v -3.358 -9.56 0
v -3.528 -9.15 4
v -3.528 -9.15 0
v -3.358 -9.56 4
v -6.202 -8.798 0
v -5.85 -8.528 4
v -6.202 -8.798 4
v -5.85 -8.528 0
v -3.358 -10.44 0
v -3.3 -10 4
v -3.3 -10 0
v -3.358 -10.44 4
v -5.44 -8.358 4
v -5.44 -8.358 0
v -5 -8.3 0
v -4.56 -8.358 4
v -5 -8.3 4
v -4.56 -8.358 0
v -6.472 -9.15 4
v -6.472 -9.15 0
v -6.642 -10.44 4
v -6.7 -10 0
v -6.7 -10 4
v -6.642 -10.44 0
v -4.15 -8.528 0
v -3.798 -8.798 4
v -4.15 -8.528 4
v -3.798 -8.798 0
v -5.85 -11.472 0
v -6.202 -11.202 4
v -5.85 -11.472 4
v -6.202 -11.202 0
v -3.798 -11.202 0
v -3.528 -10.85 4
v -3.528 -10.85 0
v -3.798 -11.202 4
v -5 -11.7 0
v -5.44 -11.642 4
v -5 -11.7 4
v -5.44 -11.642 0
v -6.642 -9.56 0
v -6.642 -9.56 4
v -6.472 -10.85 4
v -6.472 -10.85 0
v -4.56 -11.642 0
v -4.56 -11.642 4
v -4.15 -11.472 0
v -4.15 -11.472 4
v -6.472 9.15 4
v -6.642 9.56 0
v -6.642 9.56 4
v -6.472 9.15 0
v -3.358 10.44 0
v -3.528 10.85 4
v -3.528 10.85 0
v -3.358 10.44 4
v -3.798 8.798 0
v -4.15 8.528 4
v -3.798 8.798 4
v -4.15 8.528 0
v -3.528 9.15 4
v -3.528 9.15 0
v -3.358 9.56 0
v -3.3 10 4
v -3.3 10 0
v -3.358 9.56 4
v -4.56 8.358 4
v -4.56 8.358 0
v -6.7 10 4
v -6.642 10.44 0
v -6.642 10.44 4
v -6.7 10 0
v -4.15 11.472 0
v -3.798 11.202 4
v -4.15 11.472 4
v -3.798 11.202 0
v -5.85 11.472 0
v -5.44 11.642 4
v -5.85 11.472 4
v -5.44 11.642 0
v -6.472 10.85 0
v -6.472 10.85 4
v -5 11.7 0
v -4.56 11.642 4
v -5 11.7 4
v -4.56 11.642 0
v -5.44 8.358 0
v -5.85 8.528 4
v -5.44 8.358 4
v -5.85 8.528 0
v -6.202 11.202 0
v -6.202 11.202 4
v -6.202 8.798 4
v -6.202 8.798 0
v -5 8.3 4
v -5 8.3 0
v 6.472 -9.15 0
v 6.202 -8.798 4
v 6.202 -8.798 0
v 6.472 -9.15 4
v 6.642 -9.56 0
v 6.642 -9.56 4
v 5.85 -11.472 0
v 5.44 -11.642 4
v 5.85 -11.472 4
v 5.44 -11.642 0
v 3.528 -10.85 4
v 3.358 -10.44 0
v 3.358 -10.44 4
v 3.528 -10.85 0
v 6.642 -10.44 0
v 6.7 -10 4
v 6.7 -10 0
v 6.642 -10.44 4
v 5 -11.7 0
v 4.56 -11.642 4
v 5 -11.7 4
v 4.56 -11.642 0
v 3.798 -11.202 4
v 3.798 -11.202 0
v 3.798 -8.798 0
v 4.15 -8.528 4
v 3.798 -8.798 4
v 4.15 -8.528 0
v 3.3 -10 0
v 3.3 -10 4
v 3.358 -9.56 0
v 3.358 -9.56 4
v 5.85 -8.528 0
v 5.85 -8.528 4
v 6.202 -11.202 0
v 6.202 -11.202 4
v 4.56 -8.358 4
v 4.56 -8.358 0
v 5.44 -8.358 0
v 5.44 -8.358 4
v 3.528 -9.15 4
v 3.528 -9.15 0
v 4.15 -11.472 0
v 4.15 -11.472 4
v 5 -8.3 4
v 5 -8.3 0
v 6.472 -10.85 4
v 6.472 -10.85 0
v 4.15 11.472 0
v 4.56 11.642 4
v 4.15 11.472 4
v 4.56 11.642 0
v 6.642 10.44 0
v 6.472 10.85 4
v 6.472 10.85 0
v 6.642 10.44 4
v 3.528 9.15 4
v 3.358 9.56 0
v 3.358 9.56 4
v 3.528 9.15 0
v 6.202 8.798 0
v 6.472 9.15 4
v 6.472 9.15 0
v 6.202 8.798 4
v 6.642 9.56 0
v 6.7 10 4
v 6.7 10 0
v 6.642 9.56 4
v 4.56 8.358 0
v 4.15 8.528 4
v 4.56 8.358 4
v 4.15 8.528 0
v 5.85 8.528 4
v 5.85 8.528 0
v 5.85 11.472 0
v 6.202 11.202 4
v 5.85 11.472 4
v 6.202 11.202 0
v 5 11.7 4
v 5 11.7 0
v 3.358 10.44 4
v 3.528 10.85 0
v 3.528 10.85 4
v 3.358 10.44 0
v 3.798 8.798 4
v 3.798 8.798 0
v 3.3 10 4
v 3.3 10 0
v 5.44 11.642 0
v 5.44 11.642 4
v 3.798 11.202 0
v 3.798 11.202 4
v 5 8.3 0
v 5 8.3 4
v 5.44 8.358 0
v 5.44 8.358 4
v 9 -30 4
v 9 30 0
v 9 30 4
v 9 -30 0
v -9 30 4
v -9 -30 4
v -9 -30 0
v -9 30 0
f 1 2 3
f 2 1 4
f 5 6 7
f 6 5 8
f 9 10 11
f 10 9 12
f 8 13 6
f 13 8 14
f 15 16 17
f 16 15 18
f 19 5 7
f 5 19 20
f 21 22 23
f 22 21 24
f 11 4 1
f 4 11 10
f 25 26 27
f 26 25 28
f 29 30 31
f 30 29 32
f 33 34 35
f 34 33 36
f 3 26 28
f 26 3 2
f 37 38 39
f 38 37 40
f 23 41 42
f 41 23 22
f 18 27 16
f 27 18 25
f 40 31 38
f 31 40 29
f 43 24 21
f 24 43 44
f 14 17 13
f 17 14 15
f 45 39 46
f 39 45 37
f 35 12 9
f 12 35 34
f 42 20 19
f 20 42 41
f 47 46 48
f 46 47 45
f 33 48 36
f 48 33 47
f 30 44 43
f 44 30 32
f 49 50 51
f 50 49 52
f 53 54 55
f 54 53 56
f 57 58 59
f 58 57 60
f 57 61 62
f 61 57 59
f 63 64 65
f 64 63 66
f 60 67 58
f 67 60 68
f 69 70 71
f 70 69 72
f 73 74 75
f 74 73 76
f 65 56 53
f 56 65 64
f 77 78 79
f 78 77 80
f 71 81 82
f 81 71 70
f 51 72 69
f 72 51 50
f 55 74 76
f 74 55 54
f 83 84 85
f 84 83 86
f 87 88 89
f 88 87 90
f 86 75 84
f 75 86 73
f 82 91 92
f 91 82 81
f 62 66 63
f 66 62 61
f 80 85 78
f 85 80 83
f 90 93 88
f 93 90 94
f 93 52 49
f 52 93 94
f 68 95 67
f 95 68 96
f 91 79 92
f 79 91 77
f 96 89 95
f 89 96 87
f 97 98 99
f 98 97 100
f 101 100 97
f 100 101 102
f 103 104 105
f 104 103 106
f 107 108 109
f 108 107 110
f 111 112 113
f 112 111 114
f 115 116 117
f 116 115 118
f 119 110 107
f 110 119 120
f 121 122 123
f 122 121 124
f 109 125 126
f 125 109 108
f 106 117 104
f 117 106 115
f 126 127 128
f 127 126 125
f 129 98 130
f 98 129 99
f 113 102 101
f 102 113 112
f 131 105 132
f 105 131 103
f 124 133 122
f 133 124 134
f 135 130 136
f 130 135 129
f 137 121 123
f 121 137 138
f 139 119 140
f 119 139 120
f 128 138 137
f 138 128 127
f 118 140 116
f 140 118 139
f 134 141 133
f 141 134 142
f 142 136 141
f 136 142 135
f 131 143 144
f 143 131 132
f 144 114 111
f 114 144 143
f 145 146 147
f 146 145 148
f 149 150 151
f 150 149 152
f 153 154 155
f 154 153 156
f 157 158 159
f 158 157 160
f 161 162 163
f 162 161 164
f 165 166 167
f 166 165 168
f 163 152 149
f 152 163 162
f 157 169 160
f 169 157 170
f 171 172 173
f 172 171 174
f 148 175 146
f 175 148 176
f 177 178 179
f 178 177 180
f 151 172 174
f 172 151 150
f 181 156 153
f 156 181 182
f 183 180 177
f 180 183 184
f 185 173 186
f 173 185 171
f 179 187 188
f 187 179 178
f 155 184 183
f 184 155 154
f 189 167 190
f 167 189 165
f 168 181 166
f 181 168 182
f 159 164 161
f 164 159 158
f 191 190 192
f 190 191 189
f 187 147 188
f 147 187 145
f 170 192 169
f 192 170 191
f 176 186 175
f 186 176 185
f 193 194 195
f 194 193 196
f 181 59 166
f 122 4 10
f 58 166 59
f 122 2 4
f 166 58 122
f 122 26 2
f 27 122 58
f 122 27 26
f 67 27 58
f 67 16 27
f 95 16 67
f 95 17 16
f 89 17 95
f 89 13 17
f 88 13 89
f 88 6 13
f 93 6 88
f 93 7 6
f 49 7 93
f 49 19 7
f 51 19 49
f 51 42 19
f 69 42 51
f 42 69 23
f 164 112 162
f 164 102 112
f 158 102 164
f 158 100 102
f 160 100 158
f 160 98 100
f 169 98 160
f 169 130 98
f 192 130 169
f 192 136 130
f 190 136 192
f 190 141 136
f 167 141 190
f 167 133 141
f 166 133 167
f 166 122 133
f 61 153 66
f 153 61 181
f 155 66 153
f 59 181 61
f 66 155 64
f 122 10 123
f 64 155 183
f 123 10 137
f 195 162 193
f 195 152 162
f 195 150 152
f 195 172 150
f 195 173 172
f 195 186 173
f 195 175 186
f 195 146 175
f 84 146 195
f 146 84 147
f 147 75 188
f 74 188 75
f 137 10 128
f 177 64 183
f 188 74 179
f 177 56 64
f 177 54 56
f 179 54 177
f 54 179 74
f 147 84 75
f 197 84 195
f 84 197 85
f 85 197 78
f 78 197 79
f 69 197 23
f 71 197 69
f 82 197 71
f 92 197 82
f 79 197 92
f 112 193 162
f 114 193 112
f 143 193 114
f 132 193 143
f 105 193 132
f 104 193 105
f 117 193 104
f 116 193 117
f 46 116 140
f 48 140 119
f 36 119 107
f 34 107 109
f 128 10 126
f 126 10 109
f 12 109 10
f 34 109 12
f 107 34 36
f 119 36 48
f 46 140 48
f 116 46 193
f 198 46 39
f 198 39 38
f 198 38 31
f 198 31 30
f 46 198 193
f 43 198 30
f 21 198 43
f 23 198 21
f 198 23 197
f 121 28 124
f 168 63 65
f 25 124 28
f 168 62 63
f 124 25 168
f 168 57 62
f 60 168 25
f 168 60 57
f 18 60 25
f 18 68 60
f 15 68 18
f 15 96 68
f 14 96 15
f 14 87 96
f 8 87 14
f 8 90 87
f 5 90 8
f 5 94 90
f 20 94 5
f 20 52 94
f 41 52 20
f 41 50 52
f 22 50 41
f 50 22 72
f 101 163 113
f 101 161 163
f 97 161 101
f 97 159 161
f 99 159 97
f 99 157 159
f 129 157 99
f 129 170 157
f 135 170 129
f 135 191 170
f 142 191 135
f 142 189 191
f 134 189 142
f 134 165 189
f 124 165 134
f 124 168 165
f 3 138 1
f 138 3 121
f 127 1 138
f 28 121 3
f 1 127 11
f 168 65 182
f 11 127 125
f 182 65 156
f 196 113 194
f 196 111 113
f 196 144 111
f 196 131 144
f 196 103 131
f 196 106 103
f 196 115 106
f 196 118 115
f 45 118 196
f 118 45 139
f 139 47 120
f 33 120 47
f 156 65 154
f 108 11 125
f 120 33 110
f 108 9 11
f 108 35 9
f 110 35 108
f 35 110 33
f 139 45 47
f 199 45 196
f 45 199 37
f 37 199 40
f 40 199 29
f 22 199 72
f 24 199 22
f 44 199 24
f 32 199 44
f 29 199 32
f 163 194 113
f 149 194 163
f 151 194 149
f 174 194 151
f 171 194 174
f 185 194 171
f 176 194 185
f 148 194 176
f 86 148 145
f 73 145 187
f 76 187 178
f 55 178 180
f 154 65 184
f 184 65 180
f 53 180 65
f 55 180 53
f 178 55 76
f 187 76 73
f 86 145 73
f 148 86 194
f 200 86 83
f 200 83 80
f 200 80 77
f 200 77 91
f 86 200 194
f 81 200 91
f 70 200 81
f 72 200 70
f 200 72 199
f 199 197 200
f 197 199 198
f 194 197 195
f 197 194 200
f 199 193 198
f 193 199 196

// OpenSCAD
// file: ../print/common.scad
// ============================================================================
// common.scad - shared parameters and helpers for EEELunarRover printed parts
// ----------------------------------------------------------------------------
// Units: millimetres. Every dimension below is taken either from the EEEBug
// V3.1 laser-cut CAD (mech/chassis.svg, measured) or from a verified component
// datasheet (see mech/rover_layout.md section "Verified part dimensions").
//
// Printer envelope: 200 x 200 x 200 mm PLA. We deliberately keep every part
// under 180 mm in its longest axis (lab guidance: do not use the full bed).
// ============================================================================

$fn = 60;
eps = 0.05;

// ---------- Fasteners (verified: M3 nylon hex A/F measured 5.4-5.6 mm) -------
M3_CLEAR  = 3.4;   // clearance for an M3 screw / standoff thread
M3_TAP    = 2.9;   // pilot for self-tapping an M3 into PLA
M3_HEAD   = 6.2;   // M3 pan-head clearance diameter
M3_HEXAF  = 5.8;   // nylon M3 hex standoff/nut across-flats + fit clearance
WALL      = 2.0;   // default wall (5 perimeters @ 0.4 mm nozzle)

// ---------- Chassis: EEEBug V3.1 (from mech/chassis.svg) ---------------------
CH_W   = 95.0;     // chassis width  (X)
CH_L   = 205.0;    // chassis length (Y)
CH_T   = 3.0;      // 3 mm acrylic
AXLE_Y = 105.0;    // drive-wheel centreline (waist pinches 95->85 mm, y 96-114)

// Central M3 anchor rectangle straddling the axle (chassis coords, Ø3.1 holes):
//   (10.5, 95) (84.5, 95) (10.5, 129) (84.5, 129)  ->  74 mm (X) x 34 mm (Y)
ANCHOR_PITCH_X = 74.0;
ANCHOR_PITCH_Y = 34.0;

// Standard modular interface: every small sensor mount bolts on with
// 2x M3 at this pitch.
DOCK_PITCH = 12.0;

// ---------- Verified component dimensions ------------------------------------
// OSRAM SFH 300 phototransistor: 5 mm T-1 3/4 radial, body Ø5.1, ~8.6 tall,
//   leads 2.54 mm pitch.
SFH300_DIA = 5.1;
// Murata MA40S4R 40 kHz ultrasonic Rx: body Ø9.9, 7.1 tall, leads 5.0 mm pitch.
US_DIA   = 9.9;
US_H     = 7.1;
US_PITCH = 5.0;
// Honeywell SS49E linear Hall: flat package 4.1 (W) x 1.7 (thk) x 3.0 (H),
//   3 leads at 1.27 mm pitch.
HALL_W = 4.1;
HALL_T = 1.7;
HALL_H = 3.0;
// Roth perfboards (FR4, 1.5 mm): RE015 = 40.5 x 40.0 ; RE016 = 68.58 x 67.94.
PB_SMALL = [40.5, 40.0, 1.5];
PB_LARGE = [68.58, 67.94, 1.5];

// ---------- helpers ----------------------------------------------------------
module m3_clear(h = 30) { translate([0,0,-eps]) cylinder(d = M3_CLEAR, h = h + 2*eps); }
module m3_tap(h = 30)   { translate([0,0,-eps]) cylinder(d = M3_TAP,   h = h + 2*eps); }
module hexAF(af, h)     { cylinder(r = af/sqrt(3), h = h, $fn = 6); }

// 2x M3 clearance holes at DOCK_PITCH, centred on the origin along X.
module dock_holes(h = 30) {
    for (s = [-1, 1]) translate([s*DOCK_PITCH/2, 0, 0]) m3_clear(h);
}
// main file
// ============================================================================
// splice.scad - join bar for the two deck halves (print x2 per deck)
// ----------------------------------------------------------------------------
// A flat bar that bolts underneath the seam where deck_half_A meets
// deck_half_B, tying them into one rigid plate. Two per deck (one near each
// side). Drill matching M3 holes in the deck halves to suit, or use it as a
// template. Hole pitch spans the seam.
//   openscad -o splice.stl splice.scad
// ============================================================================

include <../print/common.scad>

BAR_L = 60;   // along the deck length (Y), spans the seam
BAR_W = 18;
BAR_T = 4;
HOLE_DY = 20; // hole pitch across the seam (2 into each half)

module splice() {
    difference() {
        translate([-BAR_W/2, -BAR_L/2, 0]) cube([BAR_W, BAR_L, BAR_T]);
        for (sx = [-1,1], sy = [-1,1])
            translate([sx*5, sy*HOLE_DY/2, -eps]) cylinder(d = M3_CLEAR, h = BAR_T+2*eps, $fn = 24);
    }
}

splice();
